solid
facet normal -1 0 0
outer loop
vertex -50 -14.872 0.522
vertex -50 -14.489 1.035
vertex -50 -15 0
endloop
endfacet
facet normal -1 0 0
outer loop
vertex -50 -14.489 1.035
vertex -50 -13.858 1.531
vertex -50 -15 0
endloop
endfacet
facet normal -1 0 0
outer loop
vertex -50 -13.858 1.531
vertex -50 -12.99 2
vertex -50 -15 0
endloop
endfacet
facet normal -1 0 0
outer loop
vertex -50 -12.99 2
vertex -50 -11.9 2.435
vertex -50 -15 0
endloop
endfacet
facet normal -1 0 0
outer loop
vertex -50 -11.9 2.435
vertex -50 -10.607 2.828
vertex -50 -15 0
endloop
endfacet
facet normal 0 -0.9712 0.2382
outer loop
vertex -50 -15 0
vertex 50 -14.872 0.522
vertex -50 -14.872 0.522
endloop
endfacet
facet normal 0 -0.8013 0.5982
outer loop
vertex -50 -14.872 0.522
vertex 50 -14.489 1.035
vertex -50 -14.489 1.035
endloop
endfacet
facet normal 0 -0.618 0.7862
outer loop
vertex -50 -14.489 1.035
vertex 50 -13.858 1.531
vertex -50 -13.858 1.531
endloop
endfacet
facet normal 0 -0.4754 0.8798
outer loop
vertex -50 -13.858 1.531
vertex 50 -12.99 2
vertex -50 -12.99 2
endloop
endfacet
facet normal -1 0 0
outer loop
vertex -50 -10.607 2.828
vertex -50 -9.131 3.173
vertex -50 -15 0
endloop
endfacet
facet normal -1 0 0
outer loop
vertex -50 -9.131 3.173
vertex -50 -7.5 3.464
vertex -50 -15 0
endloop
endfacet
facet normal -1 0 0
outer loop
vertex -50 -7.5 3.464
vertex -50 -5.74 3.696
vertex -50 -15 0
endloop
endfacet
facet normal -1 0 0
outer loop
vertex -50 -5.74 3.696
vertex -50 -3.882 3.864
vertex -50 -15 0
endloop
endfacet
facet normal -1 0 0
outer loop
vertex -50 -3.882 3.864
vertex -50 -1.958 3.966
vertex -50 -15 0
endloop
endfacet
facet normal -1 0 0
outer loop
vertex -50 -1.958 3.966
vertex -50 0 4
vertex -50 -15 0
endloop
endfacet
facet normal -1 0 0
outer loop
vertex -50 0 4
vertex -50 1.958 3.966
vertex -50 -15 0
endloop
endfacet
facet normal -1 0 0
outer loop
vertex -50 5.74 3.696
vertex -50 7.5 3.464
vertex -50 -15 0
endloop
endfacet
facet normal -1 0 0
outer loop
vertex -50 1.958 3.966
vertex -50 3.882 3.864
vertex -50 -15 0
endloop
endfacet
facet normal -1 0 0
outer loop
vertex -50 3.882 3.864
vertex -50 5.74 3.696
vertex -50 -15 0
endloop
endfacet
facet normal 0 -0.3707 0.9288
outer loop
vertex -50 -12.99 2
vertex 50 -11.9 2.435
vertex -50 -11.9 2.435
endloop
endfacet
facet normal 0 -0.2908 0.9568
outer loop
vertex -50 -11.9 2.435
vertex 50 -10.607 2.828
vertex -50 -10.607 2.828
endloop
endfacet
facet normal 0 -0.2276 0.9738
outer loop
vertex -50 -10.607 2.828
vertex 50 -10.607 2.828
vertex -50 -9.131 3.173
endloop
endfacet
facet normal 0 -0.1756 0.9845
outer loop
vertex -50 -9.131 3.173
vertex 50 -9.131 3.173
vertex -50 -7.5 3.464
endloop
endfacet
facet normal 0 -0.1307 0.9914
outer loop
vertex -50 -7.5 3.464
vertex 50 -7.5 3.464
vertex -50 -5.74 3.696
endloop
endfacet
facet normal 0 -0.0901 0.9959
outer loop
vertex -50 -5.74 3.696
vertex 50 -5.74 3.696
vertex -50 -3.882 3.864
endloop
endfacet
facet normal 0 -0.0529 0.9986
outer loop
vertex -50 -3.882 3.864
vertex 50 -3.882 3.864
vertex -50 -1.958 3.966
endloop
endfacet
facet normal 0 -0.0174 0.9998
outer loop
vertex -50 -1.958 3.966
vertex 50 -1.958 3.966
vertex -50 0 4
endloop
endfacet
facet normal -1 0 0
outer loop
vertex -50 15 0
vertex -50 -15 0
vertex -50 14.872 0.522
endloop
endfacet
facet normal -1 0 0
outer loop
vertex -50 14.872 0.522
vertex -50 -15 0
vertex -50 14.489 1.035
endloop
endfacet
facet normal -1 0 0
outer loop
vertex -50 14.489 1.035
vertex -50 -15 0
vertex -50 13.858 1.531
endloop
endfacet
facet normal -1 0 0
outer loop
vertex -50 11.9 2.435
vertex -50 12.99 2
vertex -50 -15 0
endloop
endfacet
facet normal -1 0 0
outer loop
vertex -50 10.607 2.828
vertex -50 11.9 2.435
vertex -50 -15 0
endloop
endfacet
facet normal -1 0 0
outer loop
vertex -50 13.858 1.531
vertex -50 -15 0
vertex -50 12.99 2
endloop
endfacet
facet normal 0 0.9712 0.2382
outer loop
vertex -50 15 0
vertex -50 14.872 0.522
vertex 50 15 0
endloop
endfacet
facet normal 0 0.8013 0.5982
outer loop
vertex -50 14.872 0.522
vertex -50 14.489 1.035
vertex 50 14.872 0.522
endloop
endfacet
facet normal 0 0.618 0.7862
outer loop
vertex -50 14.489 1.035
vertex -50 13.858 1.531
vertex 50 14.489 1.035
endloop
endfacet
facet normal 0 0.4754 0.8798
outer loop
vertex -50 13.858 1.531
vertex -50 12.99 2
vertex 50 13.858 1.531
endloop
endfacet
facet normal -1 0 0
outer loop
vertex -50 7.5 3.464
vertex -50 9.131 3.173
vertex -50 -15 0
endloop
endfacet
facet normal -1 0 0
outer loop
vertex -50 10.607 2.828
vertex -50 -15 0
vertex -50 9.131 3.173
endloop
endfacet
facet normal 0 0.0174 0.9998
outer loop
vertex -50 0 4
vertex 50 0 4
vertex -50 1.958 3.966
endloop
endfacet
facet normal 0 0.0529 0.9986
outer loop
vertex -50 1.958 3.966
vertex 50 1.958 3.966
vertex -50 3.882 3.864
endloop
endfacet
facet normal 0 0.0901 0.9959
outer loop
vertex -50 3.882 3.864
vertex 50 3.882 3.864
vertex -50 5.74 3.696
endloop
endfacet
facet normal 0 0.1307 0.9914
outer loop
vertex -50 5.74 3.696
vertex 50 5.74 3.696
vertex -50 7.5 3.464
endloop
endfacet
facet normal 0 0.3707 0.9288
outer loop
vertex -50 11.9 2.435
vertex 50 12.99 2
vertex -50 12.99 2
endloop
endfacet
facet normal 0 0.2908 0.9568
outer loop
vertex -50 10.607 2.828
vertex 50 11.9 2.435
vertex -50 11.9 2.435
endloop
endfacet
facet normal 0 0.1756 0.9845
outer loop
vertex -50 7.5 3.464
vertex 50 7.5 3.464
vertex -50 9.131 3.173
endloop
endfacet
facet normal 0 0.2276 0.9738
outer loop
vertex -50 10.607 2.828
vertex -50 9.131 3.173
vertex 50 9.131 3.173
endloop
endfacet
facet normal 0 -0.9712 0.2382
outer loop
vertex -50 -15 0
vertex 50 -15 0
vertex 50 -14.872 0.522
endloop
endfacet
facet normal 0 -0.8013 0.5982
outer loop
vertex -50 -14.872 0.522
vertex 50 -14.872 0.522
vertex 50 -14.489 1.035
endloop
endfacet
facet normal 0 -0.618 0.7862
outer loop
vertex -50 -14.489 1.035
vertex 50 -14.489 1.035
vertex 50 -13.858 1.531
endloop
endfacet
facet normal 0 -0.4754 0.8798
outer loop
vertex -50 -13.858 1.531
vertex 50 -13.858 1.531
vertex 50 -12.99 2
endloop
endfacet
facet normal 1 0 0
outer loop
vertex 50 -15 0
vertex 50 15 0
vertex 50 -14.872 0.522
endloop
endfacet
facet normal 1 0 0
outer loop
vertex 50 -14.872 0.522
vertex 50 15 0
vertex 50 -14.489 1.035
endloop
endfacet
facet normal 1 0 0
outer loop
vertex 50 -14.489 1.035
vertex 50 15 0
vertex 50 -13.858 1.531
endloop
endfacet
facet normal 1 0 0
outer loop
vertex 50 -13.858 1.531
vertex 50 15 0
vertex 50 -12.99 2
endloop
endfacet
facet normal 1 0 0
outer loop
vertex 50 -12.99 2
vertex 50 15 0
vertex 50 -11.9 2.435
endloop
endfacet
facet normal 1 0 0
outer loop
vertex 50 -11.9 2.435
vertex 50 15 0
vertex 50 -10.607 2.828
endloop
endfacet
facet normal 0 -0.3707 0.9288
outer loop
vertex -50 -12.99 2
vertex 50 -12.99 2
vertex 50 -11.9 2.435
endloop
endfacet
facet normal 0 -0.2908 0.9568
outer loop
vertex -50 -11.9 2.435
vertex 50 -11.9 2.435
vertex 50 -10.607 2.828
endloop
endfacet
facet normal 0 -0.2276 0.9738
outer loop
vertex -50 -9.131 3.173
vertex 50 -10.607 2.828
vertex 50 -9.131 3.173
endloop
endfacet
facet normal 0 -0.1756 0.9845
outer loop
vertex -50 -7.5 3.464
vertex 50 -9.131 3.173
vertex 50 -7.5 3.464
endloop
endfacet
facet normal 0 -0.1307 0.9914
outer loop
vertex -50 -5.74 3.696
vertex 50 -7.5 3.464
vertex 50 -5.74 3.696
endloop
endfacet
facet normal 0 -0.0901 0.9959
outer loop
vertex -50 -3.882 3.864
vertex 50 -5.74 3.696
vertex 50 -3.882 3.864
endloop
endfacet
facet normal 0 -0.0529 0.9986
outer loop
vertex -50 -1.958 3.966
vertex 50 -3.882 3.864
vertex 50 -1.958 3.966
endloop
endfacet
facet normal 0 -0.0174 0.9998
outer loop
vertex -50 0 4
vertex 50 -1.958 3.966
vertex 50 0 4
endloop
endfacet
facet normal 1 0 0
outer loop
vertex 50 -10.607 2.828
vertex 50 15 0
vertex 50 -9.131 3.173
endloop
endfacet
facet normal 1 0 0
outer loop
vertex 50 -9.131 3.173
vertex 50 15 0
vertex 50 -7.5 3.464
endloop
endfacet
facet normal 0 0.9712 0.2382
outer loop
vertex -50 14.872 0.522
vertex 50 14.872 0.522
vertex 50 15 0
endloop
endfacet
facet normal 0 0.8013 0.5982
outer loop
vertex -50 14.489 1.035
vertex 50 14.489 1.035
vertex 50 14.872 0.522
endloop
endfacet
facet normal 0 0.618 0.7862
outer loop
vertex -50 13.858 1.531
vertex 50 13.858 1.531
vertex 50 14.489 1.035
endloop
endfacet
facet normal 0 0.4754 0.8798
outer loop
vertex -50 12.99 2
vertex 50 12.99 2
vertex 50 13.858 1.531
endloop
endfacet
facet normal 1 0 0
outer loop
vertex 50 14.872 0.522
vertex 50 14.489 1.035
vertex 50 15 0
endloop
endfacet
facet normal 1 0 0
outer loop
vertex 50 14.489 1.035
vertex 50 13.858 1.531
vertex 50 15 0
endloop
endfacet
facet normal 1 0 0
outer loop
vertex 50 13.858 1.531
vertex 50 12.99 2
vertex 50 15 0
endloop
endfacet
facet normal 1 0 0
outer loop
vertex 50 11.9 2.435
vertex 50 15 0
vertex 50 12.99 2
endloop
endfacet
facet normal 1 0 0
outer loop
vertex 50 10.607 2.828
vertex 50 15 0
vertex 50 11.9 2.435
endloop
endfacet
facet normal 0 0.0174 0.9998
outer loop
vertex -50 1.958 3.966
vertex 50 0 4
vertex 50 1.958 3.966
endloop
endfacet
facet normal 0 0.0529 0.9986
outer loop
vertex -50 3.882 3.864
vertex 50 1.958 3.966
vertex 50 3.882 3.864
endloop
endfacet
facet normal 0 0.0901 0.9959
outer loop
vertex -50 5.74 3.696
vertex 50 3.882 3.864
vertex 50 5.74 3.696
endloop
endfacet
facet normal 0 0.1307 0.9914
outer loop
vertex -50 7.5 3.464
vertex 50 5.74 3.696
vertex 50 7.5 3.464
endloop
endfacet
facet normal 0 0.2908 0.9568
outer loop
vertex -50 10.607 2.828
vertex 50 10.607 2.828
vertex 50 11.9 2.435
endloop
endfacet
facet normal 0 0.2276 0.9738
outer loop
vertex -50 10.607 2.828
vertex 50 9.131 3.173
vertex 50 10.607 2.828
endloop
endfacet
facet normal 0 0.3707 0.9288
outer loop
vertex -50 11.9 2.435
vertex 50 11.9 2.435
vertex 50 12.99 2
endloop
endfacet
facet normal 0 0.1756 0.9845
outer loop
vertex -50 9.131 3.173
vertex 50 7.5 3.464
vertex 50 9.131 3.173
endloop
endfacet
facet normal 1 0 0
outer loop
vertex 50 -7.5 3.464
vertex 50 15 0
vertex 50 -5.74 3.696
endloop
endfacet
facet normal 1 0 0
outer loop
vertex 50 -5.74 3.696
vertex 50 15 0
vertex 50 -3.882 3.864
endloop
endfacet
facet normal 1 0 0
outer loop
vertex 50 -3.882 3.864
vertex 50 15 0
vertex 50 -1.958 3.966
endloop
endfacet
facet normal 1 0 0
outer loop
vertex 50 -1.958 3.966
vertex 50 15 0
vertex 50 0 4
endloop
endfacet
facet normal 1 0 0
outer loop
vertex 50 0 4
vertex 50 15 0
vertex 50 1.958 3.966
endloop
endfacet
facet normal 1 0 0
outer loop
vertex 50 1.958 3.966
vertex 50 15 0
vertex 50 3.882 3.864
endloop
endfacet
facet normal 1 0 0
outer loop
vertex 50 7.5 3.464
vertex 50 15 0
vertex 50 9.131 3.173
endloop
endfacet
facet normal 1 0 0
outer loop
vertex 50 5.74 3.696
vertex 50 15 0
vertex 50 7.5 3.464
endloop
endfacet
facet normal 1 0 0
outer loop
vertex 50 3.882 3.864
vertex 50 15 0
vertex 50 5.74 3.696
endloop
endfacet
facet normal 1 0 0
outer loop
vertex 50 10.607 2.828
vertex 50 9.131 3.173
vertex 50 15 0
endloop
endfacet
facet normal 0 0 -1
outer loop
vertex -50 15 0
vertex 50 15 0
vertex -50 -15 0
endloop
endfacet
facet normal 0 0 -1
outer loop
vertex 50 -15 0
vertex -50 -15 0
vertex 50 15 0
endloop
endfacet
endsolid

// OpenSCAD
// file: key-tray-alignment-plate.scad
// Alignment plate for two side-by-side wooden key trays.
// A thin plastic plate with two tongues, each nesting in the shallow
// decorative recess on a box's underside, joined by a bridge across the
// seam — so the two boxes stay aligned and can't drift apart.
//
// Axes: X runs across the two boxes (the bridge direction),
//       Y runs along the seam between them.

// Measurements — TO VERIFY on the actual boxes
recess_x = 50;         // recess size across the boxes (X)
recess_y = 50;         // recess size along the seam (Y)
recess_depth = 5;      // how far the recess sinks up into the box bottom
recess_corner_r = 8;   // rounded-corner radius of the recess
recess_spacing = 100;  // centre-to-centre distance of the two recesses
                       // (= box width, when the boxes touch along long edges)

// Fit
clearance = 0.4;       // per-side gap so a tongue drops into its recess easily

// Plate
tongue_thickness = 4;  // <= recess_depth so the boxes don't rock (aim just under 5)
bridge_thickness = 4;  // if the boxes touch, ANY thickness here lifts them along
                       // the bridge path — keep it small, or set = tongue_thickness
                       // only if there is a real gap for the bridge to sit in
bridge_width = 30;     // width of the connecting bridge, along the seam (Y)

// Derived
tongue_x = recess_x - 2 * clearance;
tongue_y = recess_y - 2 * clearance;
tongue_r = max(0.5, recess_corner_r - clearance);

$fn = 48;

// A rounded rectangle of size [x, y], corner radius r, extruded to height h.
module rounded_slab(x, y, r, h) {
  linear_extrude(height = h)
    offset(r = r)
      square([x - 2 * r, y - 2 * r], center = true);
}

module tongue() {
  rounded_slab(tongue_x, tongue_y, tongue_r, tongue_thickness);
}

module bridge() {
  // Spans between the two tongue centres; overlaps into each tongue.
  // Cross-section (Y-Z) is a half-ellipse: flat bottom, arched top like a
  // bridge, peaking at bridge_thickness in the middle.
  r = bridge_width / 2;

  scale([1, 1, bridge_thickness / r])
    intersection() {
      rotate([0, 90, 0])
        cylinder(h = recess_spacing, r = r, center = true);

      // Keep only the top half (z >= 0) so the bottom stays flat.
      translate([0, 0, r])
        cube([recess_spacing + 1, bridge_width, 2 * r], center = true);
    }
}

module plate() {
  union() {
    for (sx = [-1, 1])
      translate([sx * recess_spacing / 2, 0, 0])
        tongue();

    bridge();
  }
}

// Render selector: "all" for the full plate, "bridge" to test just the bridge.
part = "all";

if (part == "bridge") bridge();
else plate();
// main file
// Fast-print tester: renders only the bridge from the alignment plate,
// to check the arch profile and print settings before committing filament.
include <key-tray-alignment-plate.scad>

part = "bridge";
